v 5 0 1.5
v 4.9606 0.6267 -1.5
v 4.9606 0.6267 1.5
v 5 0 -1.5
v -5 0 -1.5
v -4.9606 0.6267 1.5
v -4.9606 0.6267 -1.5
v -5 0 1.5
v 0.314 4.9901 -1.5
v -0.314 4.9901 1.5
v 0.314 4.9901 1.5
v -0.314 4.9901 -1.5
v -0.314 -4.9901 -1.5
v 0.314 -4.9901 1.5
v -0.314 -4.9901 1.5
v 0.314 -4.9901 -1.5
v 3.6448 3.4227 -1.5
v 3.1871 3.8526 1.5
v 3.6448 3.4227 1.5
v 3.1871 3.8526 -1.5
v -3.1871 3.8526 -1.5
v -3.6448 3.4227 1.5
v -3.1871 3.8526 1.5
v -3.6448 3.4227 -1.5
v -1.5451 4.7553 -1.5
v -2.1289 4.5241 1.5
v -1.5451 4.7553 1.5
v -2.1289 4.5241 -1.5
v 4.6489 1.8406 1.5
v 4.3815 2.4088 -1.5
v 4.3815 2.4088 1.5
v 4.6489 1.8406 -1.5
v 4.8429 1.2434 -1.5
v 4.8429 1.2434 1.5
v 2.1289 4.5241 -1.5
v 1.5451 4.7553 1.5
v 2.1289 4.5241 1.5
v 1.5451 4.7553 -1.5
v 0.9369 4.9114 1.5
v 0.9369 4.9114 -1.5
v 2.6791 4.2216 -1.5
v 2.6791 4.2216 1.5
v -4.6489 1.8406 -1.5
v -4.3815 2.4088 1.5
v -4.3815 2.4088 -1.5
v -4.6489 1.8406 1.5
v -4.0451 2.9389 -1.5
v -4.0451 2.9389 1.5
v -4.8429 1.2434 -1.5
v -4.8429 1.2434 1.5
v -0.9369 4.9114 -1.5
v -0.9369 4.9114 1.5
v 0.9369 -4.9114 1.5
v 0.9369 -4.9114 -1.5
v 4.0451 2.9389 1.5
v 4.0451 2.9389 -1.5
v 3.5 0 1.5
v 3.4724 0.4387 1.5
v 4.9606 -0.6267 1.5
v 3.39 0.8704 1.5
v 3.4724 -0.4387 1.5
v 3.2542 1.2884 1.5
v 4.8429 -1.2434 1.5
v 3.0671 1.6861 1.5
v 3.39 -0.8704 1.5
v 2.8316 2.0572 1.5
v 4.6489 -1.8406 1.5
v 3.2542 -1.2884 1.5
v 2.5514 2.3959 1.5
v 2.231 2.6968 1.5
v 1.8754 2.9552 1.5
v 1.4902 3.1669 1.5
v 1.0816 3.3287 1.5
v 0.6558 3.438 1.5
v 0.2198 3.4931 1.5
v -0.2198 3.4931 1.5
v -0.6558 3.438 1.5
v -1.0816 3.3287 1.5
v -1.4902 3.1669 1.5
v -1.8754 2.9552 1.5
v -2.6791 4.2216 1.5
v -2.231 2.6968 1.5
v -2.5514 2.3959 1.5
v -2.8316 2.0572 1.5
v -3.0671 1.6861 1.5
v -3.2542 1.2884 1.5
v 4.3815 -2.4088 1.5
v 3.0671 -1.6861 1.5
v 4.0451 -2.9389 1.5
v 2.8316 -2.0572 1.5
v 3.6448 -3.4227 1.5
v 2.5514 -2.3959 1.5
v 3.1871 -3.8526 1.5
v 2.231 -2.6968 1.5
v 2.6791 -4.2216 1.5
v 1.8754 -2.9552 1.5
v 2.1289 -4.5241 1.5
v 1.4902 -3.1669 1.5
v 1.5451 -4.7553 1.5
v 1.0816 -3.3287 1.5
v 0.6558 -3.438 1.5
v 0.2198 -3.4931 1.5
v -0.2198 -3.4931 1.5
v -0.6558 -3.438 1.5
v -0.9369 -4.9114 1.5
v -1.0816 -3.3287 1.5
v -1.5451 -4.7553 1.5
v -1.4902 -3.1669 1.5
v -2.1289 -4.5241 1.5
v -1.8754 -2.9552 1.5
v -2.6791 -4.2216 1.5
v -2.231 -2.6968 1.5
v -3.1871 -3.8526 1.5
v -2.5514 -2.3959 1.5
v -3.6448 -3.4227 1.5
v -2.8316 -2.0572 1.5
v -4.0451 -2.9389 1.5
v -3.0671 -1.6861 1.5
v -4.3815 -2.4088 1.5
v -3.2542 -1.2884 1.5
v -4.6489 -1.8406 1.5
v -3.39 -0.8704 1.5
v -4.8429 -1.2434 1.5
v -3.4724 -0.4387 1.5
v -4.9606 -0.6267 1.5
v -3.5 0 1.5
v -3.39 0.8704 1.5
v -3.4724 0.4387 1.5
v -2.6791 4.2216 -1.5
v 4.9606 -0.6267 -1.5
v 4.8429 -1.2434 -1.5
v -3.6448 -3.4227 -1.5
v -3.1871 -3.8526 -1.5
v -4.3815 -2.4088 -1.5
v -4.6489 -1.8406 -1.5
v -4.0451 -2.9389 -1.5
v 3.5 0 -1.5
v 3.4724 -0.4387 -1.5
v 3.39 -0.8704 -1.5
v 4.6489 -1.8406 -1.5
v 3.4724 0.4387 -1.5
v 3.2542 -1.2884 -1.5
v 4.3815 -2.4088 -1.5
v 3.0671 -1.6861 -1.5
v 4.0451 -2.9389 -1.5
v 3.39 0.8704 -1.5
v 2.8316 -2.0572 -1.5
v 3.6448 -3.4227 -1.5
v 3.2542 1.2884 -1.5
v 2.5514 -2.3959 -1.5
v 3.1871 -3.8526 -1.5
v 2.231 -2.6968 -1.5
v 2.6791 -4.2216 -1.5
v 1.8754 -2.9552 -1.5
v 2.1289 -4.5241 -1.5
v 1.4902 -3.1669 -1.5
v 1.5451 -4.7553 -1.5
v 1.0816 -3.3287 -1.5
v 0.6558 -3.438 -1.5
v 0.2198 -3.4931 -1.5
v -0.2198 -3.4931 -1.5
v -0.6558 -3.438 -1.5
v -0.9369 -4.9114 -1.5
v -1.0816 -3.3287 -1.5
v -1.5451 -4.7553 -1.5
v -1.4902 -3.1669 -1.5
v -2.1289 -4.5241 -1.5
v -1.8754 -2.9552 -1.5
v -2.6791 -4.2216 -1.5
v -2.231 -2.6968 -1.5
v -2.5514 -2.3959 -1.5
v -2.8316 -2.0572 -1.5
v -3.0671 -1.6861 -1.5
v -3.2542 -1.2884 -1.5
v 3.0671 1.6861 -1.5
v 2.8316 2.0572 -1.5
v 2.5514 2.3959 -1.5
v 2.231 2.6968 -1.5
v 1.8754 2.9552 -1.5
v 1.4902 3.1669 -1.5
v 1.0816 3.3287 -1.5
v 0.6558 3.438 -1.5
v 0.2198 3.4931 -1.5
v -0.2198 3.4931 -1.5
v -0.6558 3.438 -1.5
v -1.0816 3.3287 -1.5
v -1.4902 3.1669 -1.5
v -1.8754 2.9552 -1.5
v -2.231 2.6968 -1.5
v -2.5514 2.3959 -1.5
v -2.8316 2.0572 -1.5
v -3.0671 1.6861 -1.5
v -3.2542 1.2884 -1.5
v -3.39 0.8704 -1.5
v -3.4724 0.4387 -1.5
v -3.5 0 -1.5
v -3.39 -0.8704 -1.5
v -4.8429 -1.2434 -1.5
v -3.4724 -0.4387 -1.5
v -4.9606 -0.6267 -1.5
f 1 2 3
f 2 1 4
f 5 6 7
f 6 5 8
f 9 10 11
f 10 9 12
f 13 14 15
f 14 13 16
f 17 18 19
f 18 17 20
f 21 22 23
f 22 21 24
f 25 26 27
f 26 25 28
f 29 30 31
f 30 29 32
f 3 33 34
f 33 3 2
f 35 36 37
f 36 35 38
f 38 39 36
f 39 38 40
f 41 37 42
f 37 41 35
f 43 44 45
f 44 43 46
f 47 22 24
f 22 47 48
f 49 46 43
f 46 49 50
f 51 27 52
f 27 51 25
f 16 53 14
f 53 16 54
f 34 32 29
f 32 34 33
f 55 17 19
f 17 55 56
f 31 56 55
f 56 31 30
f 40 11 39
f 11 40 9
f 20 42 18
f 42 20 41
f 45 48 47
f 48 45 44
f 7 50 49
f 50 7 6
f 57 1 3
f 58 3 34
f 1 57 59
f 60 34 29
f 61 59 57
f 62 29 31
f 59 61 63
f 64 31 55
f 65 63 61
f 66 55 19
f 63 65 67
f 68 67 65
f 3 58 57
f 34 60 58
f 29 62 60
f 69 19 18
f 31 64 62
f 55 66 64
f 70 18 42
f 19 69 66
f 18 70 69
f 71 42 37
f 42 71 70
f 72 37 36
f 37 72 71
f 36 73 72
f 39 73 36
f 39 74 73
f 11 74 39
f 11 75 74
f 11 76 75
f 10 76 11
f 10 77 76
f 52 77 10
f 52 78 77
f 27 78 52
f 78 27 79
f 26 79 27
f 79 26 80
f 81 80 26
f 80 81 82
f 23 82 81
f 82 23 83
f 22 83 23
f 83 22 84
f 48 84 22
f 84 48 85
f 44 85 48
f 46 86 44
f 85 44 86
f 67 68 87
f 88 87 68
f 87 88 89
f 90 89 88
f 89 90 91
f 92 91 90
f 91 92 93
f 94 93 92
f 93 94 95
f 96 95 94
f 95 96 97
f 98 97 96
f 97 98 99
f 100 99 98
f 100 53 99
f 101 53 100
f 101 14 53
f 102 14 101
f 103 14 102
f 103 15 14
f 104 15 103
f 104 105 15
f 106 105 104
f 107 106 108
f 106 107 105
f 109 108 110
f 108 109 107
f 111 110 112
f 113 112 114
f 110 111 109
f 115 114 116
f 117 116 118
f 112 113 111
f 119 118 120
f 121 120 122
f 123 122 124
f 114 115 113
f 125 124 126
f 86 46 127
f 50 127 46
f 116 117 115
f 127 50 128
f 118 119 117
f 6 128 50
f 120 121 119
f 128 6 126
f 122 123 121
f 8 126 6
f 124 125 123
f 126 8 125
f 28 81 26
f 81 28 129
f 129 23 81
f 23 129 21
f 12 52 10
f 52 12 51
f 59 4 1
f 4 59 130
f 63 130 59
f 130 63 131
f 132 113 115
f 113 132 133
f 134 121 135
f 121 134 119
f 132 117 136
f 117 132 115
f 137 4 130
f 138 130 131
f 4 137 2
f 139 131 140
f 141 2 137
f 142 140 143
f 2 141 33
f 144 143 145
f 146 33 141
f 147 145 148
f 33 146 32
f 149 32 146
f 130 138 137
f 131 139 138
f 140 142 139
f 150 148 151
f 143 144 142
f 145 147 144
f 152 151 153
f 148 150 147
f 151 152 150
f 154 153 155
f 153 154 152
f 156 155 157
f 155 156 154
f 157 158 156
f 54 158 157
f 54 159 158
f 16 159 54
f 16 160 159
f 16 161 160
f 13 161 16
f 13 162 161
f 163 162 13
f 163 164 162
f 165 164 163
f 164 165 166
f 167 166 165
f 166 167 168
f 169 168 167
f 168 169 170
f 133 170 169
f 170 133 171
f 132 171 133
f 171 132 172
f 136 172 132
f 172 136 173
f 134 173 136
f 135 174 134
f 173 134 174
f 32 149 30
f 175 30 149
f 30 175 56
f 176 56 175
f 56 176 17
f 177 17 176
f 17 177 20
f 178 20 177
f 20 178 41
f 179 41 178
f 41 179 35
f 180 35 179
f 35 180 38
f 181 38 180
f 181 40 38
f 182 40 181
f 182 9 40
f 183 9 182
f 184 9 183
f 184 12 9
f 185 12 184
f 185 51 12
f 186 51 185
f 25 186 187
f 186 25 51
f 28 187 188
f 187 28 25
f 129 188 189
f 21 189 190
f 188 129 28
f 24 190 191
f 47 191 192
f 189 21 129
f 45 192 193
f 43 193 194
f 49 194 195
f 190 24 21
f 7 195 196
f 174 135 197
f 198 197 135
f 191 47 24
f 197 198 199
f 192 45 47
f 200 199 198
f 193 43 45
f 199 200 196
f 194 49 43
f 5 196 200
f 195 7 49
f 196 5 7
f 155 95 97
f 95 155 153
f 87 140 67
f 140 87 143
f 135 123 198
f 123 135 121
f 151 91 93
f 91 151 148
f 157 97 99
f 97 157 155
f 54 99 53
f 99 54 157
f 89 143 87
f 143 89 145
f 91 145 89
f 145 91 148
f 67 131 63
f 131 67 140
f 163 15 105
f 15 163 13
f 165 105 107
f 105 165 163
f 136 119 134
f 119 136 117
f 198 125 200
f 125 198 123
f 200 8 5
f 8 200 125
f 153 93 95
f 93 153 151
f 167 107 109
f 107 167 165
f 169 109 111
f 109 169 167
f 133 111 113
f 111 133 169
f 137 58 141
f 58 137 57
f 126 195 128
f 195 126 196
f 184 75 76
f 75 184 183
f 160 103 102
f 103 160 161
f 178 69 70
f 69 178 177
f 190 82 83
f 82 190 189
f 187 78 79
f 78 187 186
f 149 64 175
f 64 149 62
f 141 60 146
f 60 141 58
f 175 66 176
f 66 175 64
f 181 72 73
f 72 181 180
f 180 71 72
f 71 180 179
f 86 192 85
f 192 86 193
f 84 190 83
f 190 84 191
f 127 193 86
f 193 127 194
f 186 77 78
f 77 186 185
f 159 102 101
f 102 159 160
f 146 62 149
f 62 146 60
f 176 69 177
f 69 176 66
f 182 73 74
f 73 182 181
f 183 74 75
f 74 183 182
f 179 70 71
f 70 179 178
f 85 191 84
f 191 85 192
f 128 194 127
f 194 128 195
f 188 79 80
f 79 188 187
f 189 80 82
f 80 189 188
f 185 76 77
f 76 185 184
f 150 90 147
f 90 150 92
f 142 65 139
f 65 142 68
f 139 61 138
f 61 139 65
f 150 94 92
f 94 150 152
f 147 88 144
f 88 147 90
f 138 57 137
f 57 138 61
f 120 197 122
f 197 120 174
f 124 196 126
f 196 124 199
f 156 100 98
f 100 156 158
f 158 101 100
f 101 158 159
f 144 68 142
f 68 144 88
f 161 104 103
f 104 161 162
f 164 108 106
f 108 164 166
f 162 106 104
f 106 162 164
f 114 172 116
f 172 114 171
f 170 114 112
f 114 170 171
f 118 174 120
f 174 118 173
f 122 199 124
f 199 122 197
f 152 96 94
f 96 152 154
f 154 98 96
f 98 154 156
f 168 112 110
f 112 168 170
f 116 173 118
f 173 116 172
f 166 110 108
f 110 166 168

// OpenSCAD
$fn = 50;


difference() {
	union() {
		translate(v = [0, 0, -1.5000000000]) {
			cylinder(h = 3, r = 5.0000000000);
		}
	}
	union() {
		translate(v = [0, 0, -100.0000000000]) {
			cylinder(h = 200, r = 3.5000000000);
		}
	}
}
